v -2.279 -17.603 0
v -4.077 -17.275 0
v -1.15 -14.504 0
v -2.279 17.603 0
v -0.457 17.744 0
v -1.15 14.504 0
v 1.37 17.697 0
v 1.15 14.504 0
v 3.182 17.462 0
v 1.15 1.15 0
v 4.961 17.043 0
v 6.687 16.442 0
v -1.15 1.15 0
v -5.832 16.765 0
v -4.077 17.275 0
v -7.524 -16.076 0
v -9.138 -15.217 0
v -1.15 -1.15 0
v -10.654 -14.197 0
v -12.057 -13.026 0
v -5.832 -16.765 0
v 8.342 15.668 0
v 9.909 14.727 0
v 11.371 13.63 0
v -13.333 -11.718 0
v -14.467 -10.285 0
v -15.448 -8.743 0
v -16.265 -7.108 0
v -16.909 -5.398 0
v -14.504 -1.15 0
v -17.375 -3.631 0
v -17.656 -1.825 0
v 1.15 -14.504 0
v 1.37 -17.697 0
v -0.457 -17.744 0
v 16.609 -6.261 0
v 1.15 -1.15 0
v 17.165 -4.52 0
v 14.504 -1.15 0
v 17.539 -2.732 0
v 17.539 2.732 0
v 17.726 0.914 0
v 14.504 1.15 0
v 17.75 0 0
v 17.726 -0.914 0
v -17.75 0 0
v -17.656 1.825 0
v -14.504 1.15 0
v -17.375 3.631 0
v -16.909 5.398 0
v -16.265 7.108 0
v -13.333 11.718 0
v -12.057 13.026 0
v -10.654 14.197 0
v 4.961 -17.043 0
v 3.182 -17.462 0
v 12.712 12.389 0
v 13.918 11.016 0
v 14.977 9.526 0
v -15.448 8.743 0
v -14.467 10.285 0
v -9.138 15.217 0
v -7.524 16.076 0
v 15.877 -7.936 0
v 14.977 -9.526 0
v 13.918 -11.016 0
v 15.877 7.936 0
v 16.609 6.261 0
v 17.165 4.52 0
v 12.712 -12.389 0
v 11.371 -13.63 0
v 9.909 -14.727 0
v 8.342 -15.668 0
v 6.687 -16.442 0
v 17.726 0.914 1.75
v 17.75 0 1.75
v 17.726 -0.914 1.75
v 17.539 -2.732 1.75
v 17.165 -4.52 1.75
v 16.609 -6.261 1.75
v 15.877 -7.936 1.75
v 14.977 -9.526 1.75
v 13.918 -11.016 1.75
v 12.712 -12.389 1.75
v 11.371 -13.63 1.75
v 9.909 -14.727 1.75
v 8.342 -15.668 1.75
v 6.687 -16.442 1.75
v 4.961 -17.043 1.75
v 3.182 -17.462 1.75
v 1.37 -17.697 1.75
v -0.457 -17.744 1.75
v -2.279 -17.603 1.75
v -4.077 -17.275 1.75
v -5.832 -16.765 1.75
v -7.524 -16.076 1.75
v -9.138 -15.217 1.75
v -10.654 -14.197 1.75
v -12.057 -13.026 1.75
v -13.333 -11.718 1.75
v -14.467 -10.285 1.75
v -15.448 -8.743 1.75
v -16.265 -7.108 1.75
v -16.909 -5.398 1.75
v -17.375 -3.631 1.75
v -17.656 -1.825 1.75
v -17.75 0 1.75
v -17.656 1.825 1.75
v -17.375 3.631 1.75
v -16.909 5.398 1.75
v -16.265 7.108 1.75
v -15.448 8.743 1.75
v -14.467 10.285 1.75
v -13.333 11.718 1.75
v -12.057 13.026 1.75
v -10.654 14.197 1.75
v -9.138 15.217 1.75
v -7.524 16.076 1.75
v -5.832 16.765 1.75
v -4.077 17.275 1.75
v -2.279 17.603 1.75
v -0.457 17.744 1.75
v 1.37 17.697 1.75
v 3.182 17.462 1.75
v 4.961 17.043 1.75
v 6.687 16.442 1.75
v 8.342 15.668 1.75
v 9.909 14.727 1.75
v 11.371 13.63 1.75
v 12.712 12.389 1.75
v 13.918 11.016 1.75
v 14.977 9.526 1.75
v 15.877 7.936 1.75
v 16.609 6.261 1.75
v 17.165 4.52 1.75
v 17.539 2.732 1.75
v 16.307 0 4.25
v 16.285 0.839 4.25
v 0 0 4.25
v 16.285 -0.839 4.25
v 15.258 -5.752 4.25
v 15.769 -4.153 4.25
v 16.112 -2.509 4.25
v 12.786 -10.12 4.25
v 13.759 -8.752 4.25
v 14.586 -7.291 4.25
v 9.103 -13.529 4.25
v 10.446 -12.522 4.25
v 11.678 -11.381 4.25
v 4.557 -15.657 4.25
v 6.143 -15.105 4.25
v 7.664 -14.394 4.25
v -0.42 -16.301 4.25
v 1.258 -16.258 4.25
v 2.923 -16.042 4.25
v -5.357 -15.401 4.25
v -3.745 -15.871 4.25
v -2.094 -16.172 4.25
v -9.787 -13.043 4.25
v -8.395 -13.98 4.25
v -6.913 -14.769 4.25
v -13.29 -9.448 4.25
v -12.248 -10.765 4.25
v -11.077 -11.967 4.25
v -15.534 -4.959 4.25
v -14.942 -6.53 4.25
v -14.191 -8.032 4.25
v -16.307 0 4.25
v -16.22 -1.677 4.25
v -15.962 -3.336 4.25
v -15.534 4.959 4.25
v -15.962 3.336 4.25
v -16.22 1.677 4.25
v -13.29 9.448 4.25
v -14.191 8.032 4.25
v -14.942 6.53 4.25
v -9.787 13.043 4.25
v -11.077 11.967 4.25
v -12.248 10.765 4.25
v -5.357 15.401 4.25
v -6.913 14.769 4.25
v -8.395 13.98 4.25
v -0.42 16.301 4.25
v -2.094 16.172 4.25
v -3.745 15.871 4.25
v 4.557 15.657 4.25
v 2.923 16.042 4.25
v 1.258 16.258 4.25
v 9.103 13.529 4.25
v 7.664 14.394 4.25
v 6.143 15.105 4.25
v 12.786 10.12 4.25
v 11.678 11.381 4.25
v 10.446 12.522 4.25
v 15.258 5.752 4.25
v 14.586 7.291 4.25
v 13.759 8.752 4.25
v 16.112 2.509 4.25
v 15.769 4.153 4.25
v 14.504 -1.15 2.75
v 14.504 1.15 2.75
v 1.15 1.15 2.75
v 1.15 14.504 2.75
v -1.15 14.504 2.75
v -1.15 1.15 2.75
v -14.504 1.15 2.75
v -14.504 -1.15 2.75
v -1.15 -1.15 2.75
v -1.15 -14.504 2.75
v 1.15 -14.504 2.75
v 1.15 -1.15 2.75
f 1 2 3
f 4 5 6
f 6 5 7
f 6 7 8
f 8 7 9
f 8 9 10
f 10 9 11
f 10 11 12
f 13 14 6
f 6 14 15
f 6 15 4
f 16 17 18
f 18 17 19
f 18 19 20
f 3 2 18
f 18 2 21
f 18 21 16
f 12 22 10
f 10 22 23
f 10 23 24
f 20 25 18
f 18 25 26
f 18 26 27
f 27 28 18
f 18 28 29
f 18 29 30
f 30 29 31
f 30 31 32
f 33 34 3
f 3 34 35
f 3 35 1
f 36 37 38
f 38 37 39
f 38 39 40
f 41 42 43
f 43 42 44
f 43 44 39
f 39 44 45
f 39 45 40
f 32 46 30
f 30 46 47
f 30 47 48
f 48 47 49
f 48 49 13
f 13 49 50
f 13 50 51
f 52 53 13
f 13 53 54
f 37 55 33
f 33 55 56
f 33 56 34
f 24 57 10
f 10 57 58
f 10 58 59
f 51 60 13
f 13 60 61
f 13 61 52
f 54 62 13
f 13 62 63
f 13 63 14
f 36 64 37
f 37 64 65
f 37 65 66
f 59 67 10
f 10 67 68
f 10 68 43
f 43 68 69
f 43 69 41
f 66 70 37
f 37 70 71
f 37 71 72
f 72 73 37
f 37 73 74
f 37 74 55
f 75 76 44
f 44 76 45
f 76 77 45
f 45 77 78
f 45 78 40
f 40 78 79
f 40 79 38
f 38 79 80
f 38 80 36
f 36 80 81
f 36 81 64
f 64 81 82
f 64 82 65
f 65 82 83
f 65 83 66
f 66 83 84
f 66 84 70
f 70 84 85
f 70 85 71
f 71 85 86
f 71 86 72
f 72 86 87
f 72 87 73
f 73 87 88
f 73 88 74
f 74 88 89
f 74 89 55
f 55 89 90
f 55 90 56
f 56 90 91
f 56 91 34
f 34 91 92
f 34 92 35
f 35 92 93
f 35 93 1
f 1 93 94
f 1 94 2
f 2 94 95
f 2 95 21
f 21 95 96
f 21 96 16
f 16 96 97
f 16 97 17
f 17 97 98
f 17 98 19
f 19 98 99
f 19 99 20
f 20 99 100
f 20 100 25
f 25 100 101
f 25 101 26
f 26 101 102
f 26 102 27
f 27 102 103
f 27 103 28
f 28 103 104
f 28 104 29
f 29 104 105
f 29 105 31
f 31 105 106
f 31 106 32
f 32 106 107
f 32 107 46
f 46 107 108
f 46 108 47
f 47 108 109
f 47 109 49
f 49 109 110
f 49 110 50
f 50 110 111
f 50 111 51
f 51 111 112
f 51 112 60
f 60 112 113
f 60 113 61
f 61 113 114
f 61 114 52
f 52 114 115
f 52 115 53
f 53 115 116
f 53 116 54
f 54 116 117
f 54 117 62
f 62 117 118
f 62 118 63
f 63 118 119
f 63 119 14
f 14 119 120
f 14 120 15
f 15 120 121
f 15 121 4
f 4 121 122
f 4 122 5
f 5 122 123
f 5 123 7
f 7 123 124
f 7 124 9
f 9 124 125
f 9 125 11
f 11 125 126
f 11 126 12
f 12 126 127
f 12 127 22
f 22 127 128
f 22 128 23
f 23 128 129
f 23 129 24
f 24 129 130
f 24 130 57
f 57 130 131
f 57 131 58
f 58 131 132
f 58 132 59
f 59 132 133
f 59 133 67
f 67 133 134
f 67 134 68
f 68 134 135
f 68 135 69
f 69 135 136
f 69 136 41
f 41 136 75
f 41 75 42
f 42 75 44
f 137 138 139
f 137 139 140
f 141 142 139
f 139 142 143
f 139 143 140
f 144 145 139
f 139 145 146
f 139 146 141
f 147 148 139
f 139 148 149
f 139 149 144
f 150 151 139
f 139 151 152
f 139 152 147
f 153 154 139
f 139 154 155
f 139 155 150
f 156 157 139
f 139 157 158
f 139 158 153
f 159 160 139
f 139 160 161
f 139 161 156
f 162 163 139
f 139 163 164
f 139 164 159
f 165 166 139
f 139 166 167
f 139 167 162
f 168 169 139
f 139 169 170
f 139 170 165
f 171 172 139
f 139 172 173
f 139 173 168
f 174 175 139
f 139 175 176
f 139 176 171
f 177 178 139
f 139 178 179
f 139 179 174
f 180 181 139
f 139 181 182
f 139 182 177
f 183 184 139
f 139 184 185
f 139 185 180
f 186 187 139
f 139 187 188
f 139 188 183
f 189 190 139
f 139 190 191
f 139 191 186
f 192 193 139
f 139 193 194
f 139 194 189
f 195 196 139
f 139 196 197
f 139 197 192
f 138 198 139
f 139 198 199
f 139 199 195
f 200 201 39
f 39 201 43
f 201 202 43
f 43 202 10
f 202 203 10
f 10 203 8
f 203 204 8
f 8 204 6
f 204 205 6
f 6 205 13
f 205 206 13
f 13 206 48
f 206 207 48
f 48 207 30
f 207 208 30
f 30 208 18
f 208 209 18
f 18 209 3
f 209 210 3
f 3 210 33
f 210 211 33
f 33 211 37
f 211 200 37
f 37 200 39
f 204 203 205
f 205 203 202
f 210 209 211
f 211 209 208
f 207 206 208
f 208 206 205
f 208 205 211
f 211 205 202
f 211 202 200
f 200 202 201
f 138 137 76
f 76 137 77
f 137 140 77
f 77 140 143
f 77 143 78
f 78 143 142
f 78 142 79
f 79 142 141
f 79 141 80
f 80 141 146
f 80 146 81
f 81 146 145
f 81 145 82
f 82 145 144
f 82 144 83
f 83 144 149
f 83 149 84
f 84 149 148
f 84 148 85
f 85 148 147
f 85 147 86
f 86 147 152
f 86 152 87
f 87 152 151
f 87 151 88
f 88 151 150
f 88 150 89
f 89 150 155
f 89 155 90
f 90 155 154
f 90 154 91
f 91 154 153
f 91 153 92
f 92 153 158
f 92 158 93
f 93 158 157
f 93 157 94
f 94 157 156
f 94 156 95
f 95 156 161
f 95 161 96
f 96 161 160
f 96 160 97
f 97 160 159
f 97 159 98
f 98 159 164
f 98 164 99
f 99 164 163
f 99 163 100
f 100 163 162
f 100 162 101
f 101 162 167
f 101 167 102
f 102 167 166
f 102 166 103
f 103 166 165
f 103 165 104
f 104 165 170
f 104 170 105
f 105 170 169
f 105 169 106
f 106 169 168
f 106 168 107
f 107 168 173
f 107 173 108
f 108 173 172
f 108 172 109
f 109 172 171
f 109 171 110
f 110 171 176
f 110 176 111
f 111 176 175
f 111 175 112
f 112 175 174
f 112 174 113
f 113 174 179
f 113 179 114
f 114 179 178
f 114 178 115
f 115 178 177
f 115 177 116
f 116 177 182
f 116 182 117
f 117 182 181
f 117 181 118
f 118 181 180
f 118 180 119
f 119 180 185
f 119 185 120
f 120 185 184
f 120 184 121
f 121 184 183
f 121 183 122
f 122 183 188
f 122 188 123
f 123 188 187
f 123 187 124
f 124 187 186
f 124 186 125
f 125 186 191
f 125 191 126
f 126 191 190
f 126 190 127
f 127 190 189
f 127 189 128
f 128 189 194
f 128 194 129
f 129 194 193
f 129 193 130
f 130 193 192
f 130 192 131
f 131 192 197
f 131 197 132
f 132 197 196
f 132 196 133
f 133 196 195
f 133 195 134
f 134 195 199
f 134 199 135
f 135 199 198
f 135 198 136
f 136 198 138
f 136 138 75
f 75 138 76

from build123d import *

# Parameters (mm, degrees)
SKETCH1_R           = 17.75
BOSS_EXTRUDE1_DEPTH = 4.25
CUT_EXTRUDE1_DEPTH  = 2.75
CHAMFER1_SIZE       = 2.5
CHAMFER1_SIZE2      = 1.443375673


with BuildPart() as part:
    # Sketch1 → Boss-Extrude1 (new body)
    with BuildSketch(Plane.XY):
        Circle(SKETCH1_R)
    extrude(amount=BOSS_EXTRUDE1_DEPTH)

    # Sketch2 → Cut-Extrude1 (cut)
    with BuildSketch(Plane(origin=(0, 0, 0), x_dir=(-1, 0, 0), z_dir=(0, 0, -1))):
        Polygon((-14.504482066, -1.15), (-14.504482066, 1.15), (-1.15, 1.15), (-1.15, 14.504482066), (1.15, 14.504482066), (1.15, 1.15), (14.504482066, 1.15), (14.504482066, -1.15), (1.15, -1.15), (1.15, -14.504482066), (-1.15, -14.504482066), (-1.15, -1.15), align=None)
    extrude(amount=-CUT_EXTRUDE1_DEPTH, mode=Mode.SUBTRACT)

    # Chamfer1
    chamfer1_edges = [part.edges().sort_by_distance(p)[0] for p in [
        (-17.75, 0, 4.25),
    ]]
    chamfer1_side = [part.faces().sort_by_distance(p)[0] for p in [
        (-17.75, 0, 2.125),
    ]]
    chamfer(chamfer1_edges, length=CHAMFER1_SIZE, length2=CHAMFER1_SIZE2, reference=chamfer1_side[0])


solid = part.part
